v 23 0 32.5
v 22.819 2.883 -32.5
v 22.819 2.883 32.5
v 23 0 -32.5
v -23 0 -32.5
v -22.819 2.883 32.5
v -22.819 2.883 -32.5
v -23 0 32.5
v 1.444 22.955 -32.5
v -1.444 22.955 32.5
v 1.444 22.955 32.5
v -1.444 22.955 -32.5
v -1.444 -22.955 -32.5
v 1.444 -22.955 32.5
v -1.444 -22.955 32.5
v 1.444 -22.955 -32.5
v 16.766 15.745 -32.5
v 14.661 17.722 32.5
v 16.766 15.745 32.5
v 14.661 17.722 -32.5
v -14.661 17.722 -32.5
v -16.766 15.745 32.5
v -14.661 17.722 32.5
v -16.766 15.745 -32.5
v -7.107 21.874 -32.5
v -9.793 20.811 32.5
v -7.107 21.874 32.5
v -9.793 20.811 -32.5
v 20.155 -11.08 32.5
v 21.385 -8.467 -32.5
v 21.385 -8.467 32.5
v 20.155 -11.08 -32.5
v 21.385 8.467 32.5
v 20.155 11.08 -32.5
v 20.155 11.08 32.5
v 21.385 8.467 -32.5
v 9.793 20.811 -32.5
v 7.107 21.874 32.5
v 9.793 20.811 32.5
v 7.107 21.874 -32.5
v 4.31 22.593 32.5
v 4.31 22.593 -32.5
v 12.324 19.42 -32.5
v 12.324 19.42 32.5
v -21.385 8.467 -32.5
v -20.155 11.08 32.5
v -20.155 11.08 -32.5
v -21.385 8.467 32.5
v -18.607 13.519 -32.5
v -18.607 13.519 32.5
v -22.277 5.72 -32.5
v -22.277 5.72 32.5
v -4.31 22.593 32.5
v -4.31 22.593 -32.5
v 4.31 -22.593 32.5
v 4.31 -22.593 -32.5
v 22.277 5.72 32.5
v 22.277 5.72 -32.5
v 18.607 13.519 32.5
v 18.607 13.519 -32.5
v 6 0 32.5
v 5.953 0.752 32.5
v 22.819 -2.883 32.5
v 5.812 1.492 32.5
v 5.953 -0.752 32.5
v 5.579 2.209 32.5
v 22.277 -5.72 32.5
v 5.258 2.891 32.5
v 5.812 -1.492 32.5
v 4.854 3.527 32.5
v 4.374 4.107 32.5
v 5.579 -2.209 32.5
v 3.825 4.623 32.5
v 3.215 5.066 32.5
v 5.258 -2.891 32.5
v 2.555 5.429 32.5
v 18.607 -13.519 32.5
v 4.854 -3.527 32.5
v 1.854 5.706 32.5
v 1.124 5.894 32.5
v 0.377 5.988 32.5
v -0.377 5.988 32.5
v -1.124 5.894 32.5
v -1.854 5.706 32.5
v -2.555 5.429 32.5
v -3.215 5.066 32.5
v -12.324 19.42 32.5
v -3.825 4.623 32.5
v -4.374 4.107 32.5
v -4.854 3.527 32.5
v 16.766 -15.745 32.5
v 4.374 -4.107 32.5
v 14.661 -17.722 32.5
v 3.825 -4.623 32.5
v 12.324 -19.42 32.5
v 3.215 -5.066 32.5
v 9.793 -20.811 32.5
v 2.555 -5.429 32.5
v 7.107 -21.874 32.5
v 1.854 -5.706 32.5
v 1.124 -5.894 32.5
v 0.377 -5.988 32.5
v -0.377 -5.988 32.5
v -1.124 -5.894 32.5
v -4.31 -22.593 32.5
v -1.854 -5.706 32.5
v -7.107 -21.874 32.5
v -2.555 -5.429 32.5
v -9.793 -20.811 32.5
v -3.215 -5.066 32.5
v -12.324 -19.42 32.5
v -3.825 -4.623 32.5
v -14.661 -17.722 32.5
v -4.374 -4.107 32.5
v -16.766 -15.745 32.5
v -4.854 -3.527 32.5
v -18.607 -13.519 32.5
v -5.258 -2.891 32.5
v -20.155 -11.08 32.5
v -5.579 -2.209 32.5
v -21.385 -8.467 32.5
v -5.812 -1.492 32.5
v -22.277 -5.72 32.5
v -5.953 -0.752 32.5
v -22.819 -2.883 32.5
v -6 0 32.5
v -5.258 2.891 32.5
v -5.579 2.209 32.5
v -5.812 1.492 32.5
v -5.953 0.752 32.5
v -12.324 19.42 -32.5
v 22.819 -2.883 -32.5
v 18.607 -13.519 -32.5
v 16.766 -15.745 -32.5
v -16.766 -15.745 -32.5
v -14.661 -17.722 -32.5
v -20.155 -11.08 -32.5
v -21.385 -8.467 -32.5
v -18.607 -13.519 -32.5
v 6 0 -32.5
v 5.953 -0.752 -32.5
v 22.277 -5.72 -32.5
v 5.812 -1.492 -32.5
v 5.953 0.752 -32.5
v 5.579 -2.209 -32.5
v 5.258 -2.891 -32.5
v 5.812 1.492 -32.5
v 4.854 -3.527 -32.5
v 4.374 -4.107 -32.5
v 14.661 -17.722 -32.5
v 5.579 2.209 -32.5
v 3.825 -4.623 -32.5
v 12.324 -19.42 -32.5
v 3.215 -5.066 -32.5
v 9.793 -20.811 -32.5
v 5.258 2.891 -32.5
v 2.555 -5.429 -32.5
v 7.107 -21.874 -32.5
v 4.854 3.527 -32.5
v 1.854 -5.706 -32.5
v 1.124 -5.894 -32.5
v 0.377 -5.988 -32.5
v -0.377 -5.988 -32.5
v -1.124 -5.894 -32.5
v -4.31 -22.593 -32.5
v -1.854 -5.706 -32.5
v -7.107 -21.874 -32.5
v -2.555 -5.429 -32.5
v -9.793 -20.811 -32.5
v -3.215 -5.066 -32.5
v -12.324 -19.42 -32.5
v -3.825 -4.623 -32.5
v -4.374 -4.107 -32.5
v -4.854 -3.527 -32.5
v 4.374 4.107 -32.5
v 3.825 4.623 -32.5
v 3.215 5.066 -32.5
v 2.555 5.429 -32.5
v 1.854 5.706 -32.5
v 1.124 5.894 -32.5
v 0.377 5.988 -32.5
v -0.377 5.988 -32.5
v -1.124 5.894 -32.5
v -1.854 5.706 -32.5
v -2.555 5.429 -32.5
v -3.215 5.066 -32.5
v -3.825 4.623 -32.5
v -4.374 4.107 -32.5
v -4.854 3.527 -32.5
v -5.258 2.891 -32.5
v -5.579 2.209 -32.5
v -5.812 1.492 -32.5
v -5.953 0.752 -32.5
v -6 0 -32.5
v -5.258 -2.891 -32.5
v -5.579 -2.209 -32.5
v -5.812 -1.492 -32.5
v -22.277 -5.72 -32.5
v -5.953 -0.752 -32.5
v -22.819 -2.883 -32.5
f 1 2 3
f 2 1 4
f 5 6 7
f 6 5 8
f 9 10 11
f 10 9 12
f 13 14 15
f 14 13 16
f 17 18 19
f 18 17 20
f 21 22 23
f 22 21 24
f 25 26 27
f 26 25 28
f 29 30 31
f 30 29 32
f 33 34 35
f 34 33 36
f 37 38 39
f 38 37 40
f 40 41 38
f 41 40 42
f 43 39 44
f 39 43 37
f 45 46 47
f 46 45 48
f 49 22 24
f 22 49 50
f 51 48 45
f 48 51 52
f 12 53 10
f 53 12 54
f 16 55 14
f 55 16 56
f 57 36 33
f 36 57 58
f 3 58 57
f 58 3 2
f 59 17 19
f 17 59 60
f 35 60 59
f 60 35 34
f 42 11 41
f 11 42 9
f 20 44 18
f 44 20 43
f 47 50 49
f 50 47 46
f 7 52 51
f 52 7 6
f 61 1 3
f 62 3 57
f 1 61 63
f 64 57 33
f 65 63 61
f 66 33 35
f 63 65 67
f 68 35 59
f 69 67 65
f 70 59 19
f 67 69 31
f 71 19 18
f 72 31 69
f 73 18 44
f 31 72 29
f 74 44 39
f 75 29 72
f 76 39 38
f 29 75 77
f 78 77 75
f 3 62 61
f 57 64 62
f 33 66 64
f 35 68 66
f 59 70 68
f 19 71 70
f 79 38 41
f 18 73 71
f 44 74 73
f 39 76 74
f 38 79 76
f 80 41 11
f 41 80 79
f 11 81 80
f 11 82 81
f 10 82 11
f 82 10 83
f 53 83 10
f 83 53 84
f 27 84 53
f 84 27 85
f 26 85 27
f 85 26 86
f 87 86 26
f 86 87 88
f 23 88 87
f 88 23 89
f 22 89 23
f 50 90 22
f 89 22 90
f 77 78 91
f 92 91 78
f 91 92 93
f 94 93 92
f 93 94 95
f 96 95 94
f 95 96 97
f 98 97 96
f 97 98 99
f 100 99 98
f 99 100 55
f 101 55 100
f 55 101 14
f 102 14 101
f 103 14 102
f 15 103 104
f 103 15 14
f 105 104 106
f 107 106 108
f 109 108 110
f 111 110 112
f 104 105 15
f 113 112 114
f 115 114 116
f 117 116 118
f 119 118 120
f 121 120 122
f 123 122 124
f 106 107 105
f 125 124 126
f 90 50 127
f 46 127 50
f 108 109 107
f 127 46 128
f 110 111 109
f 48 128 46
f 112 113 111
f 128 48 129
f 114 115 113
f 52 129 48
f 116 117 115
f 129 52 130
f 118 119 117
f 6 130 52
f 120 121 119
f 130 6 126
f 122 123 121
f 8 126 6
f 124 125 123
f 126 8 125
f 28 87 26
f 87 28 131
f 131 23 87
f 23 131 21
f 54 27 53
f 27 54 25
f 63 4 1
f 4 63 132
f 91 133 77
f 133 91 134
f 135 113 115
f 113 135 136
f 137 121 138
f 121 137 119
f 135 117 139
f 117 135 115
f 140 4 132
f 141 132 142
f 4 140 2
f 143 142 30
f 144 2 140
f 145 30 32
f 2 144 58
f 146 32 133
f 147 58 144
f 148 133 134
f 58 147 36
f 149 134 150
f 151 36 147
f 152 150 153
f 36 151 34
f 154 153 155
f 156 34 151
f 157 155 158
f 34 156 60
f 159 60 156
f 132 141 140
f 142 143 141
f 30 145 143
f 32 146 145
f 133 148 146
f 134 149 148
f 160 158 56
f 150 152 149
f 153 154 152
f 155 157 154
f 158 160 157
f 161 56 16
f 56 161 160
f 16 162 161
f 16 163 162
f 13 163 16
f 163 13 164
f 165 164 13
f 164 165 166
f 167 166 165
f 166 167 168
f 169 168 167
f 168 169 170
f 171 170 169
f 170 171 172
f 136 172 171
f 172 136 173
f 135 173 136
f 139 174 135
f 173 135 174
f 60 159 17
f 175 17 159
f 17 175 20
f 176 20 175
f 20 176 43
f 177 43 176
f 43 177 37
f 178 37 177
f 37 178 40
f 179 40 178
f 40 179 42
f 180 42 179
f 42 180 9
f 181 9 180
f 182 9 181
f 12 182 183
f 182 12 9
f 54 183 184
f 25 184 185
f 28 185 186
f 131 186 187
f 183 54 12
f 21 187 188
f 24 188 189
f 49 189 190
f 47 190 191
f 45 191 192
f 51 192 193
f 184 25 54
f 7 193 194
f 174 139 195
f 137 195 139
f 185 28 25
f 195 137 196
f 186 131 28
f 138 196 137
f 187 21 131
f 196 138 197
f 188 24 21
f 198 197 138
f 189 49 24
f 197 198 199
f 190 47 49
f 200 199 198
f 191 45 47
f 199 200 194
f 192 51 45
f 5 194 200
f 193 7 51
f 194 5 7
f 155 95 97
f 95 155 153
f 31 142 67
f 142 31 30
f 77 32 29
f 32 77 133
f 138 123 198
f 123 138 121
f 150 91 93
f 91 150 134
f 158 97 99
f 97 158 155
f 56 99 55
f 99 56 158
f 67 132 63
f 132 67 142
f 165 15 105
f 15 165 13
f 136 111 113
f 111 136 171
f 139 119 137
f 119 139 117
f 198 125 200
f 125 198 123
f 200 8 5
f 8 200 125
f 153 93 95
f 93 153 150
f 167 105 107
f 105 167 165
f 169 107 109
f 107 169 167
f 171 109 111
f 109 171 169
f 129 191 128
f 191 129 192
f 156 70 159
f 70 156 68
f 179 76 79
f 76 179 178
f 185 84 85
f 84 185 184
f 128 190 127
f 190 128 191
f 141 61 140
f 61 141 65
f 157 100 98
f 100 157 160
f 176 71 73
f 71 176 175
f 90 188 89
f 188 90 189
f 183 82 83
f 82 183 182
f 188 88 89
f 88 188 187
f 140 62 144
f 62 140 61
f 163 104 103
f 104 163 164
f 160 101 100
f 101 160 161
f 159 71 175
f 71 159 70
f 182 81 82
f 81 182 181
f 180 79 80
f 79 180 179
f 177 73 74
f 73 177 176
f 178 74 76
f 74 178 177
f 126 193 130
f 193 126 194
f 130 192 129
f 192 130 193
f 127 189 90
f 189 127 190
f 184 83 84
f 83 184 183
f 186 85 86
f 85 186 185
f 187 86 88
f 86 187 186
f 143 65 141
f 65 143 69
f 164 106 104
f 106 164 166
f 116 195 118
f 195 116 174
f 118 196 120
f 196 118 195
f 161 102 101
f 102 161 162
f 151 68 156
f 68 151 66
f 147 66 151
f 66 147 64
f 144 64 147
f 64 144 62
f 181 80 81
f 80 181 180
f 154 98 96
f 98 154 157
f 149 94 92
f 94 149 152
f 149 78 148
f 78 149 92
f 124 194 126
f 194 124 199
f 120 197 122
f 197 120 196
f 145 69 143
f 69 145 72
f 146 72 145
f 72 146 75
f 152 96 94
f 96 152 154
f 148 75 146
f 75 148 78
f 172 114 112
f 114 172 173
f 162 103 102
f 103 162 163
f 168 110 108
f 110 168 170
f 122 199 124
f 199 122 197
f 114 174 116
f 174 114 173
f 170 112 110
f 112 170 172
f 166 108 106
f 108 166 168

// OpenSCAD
$fn = 50;


difference() {
	union() {
		translate(v = [0, 0, -32.5000000000]) {
			cylinder(h = 65, r = 23.0000000000);
		}
	}
	union() {
		translate(v = [0, 0, -100.0000000000]) {
			cylinder(h = 200, r = 6);
		}
	}
}
